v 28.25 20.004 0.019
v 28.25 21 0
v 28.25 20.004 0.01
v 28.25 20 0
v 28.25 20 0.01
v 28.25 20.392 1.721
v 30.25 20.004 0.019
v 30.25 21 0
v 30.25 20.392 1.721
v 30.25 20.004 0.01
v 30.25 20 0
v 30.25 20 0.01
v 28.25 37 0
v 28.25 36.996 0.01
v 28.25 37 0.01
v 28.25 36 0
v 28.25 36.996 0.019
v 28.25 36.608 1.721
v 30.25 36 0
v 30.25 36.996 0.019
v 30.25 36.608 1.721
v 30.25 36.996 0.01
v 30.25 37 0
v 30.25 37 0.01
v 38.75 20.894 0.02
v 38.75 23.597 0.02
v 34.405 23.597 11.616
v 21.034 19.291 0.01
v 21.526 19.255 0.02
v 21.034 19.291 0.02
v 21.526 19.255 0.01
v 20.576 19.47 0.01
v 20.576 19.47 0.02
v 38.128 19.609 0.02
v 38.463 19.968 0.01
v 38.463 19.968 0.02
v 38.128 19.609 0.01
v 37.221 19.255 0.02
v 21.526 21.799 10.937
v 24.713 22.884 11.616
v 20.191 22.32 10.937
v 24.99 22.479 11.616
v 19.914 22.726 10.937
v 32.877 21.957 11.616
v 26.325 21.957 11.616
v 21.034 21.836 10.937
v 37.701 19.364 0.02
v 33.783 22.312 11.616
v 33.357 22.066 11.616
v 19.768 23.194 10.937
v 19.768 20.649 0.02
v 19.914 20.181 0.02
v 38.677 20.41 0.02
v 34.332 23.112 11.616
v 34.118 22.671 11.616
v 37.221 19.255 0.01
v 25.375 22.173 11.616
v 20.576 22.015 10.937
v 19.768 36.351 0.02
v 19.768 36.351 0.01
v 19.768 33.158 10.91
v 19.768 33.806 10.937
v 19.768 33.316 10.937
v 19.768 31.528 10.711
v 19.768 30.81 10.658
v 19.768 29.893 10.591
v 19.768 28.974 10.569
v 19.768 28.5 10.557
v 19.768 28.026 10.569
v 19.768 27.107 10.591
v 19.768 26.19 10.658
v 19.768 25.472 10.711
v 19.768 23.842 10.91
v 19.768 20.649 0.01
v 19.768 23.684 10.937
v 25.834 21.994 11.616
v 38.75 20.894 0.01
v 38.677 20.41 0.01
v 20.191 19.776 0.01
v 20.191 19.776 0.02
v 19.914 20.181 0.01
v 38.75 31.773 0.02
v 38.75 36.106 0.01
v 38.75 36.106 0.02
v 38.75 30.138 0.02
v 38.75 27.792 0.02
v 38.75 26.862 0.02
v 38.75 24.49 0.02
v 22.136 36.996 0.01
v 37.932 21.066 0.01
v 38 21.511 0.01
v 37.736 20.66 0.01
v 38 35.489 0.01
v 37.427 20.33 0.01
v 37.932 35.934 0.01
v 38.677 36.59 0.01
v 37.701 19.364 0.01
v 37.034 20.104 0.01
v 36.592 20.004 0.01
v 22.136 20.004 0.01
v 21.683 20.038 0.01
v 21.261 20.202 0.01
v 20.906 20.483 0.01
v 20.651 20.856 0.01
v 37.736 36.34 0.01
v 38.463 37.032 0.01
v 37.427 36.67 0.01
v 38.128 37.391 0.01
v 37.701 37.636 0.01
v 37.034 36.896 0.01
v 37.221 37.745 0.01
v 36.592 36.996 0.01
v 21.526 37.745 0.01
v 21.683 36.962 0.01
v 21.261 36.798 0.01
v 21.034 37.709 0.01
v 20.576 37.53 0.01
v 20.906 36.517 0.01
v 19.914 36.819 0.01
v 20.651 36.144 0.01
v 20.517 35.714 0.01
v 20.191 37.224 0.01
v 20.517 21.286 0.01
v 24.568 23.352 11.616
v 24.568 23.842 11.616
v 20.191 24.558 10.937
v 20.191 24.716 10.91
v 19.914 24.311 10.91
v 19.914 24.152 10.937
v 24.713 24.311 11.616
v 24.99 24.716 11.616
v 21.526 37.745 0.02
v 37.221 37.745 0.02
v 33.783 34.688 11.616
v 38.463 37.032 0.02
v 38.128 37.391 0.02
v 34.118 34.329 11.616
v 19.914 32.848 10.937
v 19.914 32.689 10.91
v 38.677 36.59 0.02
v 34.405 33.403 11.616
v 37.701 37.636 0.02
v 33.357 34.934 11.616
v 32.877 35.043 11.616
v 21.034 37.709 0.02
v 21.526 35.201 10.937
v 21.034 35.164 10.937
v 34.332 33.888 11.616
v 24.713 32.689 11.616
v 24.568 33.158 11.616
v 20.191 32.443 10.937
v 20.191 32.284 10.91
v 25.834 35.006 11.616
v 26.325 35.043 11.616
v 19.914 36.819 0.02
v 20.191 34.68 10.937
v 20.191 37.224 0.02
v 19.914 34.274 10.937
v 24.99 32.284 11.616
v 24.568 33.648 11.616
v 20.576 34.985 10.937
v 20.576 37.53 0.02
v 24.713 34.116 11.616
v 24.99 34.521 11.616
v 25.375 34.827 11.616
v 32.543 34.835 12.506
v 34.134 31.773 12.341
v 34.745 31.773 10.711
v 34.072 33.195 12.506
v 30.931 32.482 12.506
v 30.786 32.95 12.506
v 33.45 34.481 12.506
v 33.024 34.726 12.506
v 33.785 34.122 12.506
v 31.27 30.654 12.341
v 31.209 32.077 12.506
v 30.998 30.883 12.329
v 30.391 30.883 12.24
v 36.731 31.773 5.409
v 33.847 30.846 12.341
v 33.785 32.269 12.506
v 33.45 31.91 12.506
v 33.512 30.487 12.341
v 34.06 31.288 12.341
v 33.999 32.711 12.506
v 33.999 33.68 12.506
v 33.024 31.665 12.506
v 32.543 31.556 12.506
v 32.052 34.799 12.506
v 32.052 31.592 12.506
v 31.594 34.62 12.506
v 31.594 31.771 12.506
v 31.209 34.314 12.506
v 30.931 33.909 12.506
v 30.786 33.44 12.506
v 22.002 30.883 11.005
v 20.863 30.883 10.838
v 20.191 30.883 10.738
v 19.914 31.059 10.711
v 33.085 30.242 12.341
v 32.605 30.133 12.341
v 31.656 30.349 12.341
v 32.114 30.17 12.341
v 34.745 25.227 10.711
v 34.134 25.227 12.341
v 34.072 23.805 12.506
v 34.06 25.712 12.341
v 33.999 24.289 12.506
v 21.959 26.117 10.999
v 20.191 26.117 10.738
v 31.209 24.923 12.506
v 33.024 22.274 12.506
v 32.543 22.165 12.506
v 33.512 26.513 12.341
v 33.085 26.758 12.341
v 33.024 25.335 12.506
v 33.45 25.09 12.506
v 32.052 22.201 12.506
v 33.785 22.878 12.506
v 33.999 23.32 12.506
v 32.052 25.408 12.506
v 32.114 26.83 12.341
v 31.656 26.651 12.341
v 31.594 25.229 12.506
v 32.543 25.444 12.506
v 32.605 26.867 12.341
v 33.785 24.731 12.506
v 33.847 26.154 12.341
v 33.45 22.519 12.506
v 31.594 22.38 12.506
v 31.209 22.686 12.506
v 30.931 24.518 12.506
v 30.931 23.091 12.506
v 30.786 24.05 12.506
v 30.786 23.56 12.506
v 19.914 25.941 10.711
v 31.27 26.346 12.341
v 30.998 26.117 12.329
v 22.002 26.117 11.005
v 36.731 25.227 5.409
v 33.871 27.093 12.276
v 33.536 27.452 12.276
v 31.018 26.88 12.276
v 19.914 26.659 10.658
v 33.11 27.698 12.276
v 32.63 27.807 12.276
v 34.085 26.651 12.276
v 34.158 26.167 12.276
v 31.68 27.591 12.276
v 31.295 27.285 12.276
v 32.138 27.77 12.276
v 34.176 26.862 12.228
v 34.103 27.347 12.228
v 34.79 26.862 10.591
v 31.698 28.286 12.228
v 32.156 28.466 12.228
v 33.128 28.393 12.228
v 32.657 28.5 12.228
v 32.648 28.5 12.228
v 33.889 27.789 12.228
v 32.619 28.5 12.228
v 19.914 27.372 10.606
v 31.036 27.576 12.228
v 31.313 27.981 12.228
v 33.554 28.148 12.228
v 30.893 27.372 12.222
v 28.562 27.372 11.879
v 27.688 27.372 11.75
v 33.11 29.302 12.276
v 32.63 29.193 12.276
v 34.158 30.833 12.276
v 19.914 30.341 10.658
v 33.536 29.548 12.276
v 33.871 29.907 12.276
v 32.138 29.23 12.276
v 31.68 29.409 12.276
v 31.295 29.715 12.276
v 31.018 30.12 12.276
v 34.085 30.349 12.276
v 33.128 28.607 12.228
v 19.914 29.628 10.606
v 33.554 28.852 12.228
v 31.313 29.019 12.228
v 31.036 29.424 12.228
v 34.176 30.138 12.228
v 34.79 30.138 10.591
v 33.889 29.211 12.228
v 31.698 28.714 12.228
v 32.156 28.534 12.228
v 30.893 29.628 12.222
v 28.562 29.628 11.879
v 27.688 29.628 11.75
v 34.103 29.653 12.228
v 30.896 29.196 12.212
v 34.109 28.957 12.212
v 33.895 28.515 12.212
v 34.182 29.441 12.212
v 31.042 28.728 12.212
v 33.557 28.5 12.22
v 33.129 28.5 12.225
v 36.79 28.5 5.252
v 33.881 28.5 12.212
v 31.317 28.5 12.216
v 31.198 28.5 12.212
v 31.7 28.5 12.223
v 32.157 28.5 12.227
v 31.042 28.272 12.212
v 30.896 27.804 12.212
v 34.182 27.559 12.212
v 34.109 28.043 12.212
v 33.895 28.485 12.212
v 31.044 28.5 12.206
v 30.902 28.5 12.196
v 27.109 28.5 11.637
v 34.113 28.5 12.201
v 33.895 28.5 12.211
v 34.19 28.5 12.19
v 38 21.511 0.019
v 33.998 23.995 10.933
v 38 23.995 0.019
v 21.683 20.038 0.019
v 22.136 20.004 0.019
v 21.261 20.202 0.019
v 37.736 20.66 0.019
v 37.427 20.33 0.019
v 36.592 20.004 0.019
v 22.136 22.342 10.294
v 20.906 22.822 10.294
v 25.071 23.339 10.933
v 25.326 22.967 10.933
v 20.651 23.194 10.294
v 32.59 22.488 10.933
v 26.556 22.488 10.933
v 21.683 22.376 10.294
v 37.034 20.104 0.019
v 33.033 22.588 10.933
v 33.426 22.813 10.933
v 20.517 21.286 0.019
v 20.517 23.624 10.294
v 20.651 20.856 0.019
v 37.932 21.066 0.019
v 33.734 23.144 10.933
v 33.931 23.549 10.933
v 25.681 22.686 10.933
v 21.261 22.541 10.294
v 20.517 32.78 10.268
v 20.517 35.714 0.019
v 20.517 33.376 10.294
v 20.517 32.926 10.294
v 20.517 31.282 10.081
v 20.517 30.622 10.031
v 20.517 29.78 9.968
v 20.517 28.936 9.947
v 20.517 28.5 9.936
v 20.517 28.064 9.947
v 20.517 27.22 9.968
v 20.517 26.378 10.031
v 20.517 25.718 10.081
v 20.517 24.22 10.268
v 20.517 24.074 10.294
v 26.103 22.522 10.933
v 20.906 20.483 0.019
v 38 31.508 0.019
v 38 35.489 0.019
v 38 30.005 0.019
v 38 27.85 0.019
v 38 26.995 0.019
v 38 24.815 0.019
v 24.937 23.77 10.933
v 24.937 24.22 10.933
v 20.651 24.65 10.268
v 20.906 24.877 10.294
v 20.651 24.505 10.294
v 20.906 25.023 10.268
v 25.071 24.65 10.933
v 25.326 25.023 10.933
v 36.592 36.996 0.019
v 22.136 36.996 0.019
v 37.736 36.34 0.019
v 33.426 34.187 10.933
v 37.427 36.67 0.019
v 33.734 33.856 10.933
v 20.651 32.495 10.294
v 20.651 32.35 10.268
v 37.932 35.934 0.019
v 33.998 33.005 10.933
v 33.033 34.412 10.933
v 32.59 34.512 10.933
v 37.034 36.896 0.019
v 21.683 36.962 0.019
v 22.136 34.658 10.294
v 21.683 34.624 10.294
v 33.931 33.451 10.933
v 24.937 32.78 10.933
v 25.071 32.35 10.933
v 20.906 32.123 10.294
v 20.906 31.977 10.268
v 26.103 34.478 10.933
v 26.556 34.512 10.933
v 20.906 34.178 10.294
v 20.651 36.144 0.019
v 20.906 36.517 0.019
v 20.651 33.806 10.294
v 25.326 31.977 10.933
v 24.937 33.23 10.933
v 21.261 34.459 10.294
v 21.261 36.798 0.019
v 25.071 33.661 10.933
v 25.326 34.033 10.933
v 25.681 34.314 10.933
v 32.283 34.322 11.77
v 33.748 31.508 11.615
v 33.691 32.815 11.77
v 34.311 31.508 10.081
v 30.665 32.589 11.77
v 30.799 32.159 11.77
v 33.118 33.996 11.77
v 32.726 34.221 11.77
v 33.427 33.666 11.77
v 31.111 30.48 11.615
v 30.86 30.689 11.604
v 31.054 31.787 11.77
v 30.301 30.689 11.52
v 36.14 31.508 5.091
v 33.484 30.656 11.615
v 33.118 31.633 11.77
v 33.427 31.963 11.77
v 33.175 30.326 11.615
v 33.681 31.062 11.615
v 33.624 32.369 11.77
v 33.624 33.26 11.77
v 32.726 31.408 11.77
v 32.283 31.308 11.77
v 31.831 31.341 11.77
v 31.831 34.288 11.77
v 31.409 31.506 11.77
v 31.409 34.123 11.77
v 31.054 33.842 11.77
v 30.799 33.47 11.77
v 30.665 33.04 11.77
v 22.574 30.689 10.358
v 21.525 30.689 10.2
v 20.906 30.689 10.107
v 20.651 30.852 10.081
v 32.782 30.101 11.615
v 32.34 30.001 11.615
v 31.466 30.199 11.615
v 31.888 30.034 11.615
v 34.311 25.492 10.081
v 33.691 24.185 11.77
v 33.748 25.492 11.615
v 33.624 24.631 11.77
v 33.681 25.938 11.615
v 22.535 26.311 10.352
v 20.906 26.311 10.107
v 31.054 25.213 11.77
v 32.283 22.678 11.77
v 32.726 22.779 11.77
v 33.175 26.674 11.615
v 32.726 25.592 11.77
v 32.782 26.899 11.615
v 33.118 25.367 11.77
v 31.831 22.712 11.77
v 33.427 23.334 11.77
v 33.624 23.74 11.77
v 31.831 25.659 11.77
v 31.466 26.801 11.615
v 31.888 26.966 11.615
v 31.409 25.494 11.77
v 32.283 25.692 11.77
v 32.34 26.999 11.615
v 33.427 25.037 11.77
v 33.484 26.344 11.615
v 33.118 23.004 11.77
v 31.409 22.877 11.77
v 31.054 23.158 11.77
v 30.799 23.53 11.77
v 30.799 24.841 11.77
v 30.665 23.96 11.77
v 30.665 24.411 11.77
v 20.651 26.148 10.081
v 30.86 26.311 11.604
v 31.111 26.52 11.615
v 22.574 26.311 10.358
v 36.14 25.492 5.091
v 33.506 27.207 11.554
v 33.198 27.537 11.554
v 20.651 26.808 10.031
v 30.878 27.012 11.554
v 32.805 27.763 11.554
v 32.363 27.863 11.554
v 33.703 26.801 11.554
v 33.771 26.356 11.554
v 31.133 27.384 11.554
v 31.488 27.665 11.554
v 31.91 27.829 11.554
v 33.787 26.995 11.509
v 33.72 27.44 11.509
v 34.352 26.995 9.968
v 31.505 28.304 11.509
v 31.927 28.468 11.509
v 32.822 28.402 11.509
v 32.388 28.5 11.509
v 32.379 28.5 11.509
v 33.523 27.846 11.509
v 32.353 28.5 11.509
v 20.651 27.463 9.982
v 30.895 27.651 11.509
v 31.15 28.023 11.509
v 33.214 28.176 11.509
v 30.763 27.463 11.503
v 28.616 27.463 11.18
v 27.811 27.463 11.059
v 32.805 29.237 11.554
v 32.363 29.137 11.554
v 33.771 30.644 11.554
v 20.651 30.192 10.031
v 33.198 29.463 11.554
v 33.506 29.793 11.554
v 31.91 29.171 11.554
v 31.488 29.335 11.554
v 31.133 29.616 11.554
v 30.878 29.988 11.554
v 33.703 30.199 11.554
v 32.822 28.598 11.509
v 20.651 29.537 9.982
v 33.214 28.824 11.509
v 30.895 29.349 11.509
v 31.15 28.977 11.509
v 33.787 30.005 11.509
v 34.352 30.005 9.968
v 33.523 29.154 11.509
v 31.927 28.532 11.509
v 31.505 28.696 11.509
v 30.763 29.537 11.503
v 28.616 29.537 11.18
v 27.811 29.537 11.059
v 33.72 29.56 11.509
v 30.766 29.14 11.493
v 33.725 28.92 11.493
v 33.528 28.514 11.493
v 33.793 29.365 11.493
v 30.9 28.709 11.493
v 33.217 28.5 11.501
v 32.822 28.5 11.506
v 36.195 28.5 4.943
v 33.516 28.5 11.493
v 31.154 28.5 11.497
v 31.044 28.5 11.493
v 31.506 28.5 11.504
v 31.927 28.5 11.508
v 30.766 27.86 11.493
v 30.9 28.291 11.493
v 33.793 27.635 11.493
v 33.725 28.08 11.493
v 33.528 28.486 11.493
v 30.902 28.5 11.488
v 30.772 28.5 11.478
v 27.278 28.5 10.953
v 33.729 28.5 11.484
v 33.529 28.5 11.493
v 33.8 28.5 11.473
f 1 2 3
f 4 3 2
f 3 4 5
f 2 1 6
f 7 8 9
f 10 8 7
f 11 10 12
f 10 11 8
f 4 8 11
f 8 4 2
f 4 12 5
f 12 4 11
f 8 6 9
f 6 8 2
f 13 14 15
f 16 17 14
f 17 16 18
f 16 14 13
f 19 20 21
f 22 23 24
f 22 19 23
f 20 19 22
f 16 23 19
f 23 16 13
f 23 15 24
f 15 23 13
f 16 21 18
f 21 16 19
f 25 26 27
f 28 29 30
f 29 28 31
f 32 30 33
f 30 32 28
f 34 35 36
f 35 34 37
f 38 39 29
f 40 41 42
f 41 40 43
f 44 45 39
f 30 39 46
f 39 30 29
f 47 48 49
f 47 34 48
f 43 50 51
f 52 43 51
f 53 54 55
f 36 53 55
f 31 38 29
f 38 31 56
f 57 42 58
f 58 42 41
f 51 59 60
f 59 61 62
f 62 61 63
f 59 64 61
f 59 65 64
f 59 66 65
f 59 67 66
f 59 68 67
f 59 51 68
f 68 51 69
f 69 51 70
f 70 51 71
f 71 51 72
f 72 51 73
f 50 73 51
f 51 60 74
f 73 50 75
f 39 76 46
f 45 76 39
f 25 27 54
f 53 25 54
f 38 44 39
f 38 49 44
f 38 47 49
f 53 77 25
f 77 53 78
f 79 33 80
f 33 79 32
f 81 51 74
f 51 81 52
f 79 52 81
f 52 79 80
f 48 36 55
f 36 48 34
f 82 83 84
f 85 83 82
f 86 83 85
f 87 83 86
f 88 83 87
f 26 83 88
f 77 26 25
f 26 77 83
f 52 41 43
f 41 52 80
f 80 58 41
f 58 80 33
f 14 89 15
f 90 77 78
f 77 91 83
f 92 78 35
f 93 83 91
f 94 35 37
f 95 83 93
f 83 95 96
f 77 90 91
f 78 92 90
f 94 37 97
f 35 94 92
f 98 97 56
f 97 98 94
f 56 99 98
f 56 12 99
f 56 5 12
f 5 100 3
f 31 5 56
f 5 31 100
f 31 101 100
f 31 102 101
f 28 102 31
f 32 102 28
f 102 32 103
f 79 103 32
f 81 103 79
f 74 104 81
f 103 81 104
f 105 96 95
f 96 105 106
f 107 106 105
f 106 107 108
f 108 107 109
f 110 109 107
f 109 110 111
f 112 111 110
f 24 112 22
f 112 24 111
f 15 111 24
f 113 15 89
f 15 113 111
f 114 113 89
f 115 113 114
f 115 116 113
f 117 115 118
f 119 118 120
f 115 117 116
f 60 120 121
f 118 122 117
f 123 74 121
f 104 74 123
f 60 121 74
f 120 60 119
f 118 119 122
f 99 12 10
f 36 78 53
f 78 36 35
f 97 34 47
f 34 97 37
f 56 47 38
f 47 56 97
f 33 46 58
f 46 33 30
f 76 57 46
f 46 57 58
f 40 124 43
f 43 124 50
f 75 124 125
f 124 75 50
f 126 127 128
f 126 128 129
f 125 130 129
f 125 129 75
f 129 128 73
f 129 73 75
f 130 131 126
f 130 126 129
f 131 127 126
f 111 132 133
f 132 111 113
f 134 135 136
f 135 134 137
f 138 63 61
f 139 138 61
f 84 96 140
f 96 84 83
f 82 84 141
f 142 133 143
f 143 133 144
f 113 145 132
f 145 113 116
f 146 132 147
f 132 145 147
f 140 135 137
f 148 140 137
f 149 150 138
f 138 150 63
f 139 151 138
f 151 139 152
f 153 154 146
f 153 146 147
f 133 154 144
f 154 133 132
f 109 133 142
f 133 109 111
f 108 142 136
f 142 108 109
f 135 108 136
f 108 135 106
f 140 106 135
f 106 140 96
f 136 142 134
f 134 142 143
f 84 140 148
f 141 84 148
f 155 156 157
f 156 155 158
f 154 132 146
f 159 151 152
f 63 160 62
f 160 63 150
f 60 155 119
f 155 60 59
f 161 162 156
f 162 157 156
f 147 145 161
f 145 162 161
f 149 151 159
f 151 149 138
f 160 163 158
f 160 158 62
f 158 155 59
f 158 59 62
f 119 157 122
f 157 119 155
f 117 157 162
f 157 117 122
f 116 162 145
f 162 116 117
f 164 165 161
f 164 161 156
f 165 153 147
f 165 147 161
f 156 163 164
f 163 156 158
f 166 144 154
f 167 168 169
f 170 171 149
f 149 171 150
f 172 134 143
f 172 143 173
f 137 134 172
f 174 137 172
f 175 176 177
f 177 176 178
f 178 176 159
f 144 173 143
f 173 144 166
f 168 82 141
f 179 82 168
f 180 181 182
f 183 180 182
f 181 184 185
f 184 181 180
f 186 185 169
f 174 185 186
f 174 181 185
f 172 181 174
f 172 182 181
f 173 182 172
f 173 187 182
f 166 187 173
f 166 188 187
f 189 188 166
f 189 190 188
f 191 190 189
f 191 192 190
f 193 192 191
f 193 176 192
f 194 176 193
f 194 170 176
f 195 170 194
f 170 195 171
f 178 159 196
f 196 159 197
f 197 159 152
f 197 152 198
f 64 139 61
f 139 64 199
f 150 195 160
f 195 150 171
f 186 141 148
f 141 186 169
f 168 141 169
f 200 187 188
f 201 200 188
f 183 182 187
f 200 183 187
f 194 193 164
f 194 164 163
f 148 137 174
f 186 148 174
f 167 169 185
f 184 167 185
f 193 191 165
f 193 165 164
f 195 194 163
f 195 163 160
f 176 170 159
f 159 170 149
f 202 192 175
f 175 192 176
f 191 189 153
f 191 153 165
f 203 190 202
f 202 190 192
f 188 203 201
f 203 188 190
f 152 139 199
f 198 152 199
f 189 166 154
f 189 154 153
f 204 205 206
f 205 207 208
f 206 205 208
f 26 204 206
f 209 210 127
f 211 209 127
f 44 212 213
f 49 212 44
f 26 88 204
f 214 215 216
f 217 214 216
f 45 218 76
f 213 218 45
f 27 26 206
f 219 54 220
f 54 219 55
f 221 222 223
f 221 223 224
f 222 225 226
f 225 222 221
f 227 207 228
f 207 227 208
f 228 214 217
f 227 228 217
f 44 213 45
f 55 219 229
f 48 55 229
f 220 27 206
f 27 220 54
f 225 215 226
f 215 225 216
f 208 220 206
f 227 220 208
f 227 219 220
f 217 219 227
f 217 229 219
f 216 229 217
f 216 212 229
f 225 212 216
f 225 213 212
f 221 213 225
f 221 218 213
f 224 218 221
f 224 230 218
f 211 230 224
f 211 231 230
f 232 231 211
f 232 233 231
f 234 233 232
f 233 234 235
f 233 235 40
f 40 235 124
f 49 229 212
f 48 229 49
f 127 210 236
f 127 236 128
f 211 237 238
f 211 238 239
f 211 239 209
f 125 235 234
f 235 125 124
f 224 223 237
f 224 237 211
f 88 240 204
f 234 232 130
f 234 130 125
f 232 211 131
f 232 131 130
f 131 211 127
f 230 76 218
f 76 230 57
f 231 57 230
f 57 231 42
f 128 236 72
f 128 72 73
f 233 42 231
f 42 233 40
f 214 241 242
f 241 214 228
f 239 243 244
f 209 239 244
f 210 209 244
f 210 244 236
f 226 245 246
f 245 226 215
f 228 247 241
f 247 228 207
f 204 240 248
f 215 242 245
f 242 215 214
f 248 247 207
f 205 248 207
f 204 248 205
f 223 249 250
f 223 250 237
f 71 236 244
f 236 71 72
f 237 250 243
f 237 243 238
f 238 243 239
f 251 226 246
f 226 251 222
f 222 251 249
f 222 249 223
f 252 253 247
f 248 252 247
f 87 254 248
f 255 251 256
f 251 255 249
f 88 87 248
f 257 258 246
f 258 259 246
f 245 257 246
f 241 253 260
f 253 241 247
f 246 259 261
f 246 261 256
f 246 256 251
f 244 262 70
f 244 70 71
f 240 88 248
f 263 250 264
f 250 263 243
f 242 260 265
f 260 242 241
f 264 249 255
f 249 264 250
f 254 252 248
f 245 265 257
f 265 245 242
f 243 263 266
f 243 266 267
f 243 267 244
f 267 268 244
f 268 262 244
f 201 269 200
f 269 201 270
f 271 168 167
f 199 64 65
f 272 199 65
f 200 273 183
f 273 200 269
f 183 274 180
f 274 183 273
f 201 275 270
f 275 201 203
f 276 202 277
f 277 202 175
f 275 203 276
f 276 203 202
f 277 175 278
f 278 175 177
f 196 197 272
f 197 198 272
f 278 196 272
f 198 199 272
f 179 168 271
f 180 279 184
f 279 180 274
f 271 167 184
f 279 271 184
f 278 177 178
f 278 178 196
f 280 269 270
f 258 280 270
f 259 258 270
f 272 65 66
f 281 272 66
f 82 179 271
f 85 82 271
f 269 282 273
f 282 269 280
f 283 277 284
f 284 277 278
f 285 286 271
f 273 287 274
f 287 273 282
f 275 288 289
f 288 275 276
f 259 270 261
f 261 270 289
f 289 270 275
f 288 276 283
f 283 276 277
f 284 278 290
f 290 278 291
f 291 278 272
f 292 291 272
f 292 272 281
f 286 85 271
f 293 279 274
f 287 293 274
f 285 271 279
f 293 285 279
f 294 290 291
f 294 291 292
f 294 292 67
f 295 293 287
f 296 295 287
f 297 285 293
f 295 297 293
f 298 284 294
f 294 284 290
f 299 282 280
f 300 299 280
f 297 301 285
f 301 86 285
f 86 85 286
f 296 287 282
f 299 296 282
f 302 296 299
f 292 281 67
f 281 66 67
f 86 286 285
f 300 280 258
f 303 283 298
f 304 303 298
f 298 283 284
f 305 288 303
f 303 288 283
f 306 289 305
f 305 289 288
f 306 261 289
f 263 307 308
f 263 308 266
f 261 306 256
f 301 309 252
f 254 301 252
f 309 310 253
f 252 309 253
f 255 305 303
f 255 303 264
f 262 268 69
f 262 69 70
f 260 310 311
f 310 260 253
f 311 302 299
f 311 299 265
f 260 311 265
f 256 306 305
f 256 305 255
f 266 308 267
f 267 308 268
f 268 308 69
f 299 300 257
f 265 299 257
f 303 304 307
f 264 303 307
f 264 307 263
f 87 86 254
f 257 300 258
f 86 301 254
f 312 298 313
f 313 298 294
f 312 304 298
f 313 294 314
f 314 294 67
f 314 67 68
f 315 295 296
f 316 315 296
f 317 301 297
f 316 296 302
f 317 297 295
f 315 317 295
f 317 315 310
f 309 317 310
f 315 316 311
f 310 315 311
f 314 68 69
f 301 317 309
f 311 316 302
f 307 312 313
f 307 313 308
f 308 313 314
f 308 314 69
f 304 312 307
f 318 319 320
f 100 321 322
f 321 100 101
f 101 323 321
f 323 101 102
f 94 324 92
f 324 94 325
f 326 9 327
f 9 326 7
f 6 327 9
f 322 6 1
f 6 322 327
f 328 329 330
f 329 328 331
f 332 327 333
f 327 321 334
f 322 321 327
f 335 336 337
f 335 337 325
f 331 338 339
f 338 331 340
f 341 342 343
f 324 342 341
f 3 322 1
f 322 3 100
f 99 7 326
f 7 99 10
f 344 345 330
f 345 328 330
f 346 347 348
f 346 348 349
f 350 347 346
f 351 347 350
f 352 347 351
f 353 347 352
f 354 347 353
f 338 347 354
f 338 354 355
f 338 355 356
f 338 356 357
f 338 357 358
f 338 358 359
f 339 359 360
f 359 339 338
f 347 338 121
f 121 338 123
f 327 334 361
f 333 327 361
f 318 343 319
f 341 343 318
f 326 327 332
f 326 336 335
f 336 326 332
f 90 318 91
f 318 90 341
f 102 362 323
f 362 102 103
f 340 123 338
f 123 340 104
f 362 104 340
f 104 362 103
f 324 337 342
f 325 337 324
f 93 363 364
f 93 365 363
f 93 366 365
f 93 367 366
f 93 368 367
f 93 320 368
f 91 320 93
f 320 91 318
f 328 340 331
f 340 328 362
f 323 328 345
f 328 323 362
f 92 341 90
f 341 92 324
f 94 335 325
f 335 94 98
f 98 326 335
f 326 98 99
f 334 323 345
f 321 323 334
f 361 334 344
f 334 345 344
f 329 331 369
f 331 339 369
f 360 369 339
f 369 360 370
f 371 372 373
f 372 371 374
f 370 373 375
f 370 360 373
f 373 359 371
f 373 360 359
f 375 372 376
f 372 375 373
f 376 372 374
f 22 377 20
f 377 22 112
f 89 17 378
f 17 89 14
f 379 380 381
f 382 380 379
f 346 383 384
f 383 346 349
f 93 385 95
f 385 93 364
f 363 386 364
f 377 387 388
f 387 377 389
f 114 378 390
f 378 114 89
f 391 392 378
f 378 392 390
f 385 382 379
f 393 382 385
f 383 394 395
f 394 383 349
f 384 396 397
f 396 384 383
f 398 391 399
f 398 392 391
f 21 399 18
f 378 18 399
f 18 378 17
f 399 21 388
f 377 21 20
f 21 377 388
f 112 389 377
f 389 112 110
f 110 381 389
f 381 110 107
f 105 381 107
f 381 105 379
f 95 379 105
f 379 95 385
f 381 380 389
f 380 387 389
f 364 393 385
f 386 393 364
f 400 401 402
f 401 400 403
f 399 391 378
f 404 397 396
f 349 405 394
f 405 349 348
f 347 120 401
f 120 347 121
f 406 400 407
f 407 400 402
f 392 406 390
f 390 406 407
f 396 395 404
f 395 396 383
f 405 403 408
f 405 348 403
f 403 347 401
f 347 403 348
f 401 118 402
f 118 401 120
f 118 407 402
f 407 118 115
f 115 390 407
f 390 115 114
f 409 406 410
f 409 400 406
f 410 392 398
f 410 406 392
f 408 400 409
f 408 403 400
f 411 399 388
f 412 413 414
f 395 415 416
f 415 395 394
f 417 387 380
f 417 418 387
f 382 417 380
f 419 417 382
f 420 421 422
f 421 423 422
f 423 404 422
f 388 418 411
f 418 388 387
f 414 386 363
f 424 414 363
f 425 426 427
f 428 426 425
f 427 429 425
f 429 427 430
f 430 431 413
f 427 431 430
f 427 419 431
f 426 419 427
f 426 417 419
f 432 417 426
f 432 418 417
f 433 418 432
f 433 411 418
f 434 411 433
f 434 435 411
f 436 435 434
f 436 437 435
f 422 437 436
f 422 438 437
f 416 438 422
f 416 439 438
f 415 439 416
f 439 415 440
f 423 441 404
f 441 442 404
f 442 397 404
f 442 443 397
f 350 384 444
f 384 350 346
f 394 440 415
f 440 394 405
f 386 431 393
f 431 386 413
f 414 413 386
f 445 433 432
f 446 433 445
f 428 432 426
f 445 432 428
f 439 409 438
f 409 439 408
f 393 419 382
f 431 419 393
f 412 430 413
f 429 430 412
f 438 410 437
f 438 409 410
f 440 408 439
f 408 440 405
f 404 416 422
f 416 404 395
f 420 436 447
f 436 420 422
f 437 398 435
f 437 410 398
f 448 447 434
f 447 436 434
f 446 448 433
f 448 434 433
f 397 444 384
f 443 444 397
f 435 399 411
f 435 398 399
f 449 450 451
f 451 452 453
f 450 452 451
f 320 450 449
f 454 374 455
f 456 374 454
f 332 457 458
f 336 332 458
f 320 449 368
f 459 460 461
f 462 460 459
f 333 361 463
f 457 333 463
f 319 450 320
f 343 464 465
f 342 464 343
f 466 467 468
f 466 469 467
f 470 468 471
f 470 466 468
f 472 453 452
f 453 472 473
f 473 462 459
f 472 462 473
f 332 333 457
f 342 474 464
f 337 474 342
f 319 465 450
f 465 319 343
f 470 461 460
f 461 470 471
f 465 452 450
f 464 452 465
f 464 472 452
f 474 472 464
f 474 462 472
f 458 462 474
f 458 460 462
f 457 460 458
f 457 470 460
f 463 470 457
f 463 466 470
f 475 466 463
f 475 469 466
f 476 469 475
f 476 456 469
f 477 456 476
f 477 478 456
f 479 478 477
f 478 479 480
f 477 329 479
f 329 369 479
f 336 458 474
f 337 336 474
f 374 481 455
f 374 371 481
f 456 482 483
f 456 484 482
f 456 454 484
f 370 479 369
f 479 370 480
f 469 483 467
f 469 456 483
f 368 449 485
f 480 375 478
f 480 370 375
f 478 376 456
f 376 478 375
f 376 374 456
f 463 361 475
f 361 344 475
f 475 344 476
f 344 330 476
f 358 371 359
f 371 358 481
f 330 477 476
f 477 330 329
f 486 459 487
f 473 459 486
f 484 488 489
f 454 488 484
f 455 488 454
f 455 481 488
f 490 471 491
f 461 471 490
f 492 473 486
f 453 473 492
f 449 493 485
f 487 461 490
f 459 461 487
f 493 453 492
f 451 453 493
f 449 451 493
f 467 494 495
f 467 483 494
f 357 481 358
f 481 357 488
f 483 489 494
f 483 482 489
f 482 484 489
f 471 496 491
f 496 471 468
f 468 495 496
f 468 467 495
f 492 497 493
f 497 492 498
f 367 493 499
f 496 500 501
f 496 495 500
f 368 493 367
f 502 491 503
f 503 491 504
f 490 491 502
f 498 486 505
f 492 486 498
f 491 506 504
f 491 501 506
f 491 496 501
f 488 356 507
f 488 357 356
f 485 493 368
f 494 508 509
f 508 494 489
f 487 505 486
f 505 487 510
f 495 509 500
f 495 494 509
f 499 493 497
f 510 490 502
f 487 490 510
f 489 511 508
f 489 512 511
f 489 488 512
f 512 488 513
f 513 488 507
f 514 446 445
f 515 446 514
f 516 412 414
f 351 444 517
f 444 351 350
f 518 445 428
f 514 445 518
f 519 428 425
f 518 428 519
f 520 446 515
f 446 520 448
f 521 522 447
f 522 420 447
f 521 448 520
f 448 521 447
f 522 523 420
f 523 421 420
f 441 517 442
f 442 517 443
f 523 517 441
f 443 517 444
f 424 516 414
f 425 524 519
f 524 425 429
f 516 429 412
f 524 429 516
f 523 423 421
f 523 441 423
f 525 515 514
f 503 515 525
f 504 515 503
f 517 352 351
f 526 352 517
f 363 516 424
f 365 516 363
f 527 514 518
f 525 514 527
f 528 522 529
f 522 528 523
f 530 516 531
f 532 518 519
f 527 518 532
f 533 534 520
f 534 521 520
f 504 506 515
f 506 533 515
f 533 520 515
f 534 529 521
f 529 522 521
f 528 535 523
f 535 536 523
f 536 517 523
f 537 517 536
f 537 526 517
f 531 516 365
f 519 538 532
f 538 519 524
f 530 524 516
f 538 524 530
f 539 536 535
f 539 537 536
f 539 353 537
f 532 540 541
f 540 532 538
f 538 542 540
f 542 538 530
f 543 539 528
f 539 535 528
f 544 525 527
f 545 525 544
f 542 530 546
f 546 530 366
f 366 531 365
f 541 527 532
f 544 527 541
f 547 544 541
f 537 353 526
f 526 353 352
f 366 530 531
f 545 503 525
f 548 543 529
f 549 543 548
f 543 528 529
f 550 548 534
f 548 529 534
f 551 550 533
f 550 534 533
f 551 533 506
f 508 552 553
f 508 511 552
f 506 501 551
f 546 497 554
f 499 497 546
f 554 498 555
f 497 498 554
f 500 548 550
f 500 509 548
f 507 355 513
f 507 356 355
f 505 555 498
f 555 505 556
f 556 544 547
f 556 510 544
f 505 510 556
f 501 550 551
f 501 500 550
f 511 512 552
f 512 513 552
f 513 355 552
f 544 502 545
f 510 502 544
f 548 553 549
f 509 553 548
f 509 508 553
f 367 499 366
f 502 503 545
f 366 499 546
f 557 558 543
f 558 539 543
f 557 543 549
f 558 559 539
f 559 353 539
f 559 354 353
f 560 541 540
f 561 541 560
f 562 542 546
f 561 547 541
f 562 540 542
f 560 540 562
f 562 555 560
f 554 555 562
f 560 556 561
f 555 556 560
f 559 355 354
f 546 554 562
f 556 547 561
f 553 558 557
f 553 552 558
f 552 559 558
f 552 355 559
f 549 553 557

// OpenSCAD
//measures are in millimeters
AY=18.5;
AX=19.0;
BY=12.5;
BLX=14.5;
EZ=11.0;
FLZ=14.0;
H=12.75;
CYL_OFF_Z=50;
CYL_DEPTH=0.1;
CLIP_X=2;
// Original clip is to thin
//CLIP_Y=0.75;
CLIP_Y=1;
CLIP_H=3*CLIP_Y;
CORNER_RADIUS=2;

WallThickness=0.75;
ClipWidth=2.2;
ClipDepth=0.75;

//ascfront=FLZ/sqrt(pow(FLZ,2)-pow(H,2));
//asctop=(H-EZ)/sqrt(pow(BLX,2)-pow((H-EZ),2));

alpha=asin((H-EZ)/BLX);
beta=asin(H/FLZ);
gamma=90-asin((0.5*(AY-BY))/EZ);

module keycap(){
	scale([AX/(AX+2*CORNER_RADIUS),AY/(AY+2*CORNER_RADIUS),1])
	translate([CORNER_RADIUS,CORNER_RADIUS,0.01])
	minkowski(){
		difference(){
			cube([AX,AY,H]);
			rotate(a=gamma,v=[1,0,0]) cube([100,100,100]);
			translate([0,AY,0]) rotate(a=90-gamma,v=[1,0,0]) cube([100,100,100]);
			translate([0,0,EZ]) rotate(a=-alpha,v=[0,1,0]) translate([-50,0,0]) cube([100,100,100]);
			translate([0,AY/2,EZ+CYL_OFF_Z]) rotate(a=90-alpha,v=[0,1,0]) cylinder(h=100,center=true,r=CYL_OFF_Z+CYL_DEPTH,$fa=1);
			translate([AX,0,0]) rotate(a=beta-90,v=[0,1,0]) cube([100,100,100]);
		}
		cylinder(h=0.01,r=CORNER_RADIUS,$fs=0.6);
		//rotate(a=90,v=[1,0,0]) cylinder(h=0.01,r=1,$fs=0.3);
	}
}

module clip(){
	difference(){
		cube([CLIP_X,CLIP_Y,CLIP_H]);
		translate([0,CLIP_Y,0]) rotate(a=asin(CLIP_Y/CLIP_H),v=[1,0,0]) cube([100,100,100]);
	}
}

i=1;
j=1;
translate([i*(AX+WallThickness),j*(AY+WallThickness),0]){

translate([(AX-CLIP_X)/2,WallThickness,0]) clip();
translate([0,AY,0]) mirror([0,1,0]) translate([(AX-CLIP_X)/2,WallThickness,0]) clip();

difference(){
	keycap();
	translate([WallThickness, WallThickness, 0]) scale(v=[1-2*WallThickness/AX, 1-2*WallThickness/AY, 1-WallThickness/H]) keycap();
}
}
